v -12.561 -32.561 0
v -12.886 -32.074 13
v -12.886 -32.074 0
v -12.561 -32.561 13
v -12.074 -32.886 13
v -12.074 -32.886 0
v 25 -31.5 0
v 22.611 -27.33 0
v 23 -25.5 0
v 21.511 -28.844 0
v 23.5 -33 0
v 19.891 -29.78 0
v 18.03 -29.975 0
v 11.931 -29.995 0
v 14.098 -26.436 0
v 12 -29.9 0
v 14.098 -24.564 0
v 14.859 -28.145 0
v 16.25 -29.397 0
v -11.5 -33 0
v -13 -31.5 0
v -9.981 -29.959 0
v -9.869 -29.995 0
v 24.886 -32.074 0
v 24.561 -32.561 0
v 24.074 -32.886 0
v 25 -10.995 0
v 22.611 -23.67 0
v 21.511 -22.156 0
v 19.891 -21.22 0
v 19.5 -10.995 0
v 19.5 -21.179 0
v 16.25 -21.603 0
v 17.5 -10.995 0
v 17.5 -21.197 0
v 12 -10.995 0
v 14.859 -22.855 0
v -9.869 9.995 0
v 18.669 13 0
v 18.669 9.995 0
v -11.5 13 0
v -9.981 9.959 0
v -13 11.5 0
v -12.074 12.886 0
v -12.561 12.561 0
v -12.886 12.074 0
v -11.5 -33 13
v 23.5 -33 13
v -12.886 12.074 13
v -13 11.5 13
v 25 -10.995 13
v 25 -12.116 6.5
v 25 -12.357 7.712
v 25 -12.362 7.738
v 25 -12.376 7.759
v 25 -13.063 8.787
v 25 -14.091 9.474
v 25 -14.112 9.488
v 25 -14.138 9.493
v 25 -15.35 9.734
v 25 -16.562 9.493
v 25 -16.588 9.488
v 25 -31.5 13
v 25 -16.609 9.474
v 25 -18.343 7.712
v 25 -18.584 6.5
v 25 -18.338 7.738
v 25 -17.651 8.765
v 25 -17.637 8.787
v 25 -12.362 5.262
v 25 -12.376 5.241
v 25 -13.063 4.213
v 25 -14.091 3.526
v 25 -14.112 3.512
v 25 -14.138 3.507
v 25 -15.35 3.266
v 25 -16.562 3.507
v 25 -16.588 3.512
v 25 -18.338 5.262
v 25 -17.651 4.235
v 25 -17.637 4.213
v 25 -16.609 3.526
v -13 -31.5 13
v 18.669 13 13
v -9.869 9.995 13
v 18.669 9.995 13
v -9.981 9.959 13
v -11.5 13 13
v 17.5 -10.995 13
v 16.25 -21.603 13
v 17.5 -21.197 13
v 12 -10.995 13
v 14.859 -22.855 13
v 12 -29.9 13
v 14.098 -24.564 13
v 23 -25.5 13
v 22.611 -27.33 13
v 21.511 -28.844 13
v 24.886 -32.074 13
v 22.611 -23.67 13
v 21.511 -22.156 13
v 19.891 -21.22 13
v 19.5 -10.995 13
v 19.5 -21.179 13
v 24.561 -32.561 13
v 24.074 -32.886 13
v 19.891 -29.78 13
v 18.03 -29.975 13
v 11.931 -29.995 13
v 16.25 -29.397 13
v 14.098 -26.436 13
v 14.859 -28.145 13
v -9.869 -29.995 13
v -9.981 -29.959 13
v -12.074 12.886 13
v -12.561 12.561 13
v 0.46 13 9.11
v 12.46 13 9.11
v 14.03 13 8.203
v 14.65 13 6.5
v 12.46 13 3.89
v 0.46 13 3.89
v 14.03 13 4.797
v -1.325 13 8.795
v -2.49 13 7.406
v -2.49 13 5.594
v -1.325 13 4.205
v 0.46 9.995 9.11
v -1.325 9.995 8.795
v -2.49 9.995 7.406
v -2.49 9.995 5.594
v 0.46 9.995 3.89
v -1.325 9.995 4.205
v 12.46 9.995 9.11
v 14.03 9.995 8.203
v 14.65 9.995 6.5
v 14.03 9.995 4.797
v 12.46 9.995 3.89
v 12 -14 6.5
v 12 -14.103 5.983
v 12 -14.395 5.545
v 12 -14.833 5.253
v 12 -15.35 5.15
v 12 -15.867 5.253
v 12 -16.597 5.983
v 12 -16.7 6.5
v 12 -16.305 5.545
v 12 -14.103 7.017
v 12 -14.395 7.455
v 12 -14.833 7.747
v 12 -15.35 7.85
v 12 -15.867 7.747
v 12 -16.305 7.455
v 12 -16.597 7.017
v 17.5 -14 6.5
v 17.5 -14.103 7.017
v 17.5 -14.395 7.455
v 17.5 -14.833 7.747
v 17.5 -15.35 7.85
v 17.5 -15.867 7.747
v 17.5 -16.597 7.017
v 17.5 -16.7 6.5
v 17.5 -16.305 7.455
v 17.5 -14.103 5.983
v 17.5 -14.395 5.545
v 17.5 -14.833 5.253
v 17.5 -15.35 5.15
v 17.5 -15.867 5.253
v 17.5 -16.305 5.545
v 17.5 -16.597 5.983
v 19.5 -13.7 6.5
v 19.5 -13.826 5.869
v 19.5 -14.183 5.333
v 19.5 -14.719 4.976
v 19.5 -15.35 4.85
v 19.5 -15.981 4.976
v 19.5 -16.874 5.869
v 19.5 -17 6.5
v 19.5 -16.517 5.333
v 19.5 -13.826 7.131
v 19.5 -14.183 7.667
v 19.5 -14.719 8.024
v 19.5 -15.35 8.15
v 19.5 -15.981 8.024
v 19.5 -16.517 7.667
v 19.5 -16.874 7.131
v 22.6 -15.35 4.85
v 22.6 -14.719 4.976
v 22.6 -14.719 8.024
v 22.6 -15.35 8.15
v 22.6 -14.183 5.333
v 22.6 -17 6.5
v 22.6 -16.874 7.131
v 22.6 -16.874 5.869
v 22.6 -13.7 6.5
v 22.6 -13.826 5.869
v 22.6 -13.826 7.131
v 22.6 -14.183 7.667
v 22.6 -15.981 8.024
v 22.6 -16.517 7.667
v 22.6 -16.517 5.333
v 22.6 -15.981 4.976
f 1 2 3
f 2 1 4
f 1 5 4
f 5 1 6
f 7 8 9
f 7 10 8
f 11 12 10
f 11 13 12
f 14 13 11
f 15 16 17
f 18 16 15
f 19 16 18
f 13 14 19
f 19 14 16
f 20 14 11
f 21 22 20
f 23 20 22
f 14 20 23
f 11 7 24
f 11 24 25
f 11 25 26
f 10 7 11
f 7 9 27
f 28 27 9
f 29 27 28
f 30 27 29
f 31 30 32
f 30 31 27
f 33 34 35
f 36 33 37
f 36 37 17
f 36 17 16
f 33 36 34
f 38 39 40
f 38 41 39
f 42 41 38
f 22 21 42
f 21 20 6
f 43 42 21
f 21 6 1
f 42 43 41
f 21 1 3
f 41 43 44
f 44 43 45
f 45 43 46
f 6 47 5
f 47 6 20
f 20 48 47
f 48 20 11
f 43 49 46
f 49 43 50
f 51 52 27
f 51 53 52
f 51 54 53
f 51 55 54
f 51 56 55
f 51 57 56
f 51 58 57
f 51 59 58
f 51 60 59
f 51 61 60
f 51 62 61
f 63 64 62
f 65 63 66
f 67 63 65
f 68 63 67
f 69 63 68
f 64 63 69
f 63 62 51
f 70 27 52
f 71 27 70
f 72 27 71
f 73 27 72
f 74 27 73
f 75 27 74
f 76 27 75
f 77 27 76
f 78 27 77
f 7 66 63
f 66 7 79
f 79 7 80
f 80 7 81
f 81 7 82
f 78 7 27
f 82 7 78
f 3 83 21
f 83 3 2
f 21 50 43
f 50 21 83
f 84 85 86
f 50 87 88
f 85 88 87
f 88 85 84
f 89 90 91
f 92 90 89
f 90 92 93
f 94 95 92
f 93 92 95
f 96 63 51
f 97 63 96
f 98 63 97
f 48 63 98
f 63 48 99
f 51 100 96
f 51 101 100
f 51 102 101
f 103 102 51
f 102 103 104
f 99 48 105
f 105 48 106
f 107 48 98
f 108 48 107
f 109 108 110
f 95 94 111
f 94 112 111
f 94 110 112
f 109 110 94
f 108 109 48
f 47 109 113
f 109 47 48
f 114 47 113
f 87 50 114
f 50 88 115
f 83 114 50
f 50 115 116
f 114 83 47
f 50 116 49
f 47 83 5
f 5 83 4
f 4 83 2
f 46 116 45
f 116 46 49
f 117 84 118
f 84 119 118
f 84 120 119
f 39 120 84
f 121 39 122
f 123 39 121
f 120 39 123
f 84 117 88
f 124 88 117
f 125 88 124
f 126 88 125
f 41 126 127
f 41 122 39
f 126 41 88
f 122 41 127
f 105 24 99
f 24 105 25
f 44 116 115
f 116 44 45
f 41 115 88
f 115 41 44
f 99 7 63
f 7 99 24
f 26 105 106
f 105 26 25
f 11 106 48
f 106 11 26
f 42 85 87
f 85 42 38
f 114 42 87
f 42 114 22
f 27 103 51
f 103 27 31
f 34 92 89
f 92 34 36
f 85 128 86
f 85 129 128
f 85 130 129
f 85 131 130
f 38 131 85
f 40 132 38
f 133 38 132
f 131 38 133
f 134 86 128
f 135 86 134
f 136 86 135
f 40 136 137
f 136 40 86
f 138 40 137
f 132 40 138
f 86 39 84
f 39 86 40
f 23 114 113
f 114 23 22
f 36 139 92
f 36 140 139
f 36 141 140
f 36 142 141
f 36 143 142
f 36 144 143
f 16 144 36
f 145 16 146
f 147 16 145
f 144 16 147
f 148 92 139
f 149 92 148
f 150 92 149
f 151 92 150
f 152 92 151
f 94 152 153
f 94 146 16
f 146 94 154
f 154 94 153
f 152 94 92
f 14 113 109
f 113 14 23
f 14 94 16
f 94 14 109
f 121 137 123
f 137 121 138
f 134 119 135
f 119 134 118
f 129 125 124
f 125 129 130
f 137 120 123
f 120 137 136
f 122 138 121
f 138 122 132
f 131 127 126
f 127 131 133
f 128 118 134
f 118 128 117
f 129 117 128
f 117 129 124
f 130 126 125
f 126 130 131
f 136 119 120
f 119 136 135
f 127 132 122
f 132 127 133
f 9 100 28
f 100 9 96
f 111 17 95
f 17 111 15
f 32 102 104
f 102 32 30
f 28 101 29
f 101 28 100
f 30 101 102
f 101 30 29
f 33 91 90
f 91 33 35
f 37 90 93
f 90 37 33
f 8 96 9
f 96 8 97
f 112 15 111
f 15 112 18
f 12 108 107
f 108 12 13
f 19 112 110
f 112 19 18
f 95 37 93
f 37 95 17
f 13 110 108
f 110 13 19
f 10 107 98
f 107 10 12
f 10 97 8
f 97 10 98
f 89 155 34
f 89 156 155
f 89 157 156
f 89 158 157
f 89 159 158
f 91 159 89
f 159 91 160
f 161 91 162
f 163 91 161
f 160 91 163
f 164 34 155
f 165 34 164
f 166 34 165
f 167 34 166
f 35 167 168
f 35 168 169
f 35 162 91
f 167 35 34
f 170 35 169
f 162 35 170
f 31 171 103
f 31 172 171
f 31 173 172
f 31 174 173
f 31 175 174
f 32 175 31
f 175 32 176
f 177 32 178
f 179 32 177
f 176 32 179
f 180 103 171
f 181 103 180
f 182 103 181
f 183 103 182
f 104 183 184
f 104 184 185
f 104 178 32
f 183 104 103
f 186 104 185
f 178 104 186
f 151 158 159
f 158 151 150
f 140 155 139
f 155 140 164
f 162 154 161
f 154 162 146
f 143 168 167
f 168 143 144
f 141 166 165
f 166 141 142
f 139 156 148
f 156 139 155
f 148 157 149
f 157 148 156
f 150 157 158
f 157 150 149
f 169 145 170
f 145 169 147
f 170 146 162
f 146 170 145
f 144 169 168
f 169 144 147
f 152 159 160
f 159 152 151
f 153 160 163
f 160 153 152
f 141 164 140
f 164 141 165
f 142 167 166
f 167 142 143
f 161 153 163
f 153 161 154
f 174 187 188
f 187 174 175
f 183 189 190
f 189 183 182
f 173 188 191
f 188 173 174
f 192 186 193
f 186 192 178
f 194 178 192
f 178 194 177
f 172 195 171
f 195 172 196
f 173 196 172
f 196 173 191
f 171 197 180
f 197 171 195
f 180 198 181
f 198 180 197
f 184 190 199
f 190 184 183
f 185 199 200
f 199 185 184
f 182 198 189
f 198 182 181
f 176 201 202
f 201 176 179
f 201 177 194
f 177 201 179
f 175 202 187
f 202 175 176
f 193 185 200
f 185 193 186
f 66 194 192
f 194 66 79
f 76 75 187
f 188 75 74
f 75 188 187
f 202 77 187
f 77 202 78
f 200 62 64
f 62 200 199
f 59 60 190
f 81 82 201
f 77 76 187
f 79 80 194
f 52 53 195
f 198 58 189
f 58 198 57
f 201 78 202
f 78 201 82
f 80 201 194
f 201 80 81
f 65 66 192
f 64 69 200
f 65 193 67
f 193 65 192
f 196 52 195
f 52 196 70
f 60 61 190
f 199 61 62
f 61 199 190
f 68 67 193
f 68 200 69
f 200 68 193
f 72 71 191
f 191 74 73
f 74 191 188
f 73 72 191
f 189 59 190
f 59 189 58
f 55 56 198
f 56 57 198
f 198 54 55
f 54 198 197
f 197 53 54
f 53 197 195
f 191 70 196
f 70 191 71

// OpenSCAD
// file: parameter.scad
//-------Parameter GHarp----------------------------------------------------

strScale=650;
strDia=3;
strPosX=20;
strPosY=-20;
slotXY=20;
nStr=3;

nema17_height=40;
nema17_width=42;
nema17_shftDia=5;
nema17_shftLen=28;
nema17_holeDist=31;
Nema17_gearDia=23;

tuner_bDi=7.8;
tuner_bDo=22.2;
tuner_bZ=10;
tuner_rThick=5;
//tuner_tDia=strPosX*2; (big)
tuner_tDia=strPosX*2-10;
tuner_leverZ=10;
tuner_zPos=225;
tuner_strDia=strDia[0];
tuner_leverY=35;

//----------Kickup----------------------------------------------------

kickup_baseX=17;
kickup_baseY=13;
kickup_zAdjDia=3.3;
kickup_zAdjL=10;
kickup_zAdjDist=10.5;
kickup_zAdjOff=4;
//------------------------------------------------------------------------

slide_cpDst=1.5;
slide_rackPosX=(55-12.5);

m3Dia=3.3;
m3NutD=6.6;
m4Dia=4.3;
m4NutD=8.3;
m4NutZ=5;
m5Dia=5.3;
m5HeadD=9.6;

edgeR=3;

gearXPos=57;
gearYPos=0;
gearZPos=360;

rackScrD=20;
rack_X=13;
rack_Y=15.5;
rack_extOffX=0;

bearGearD=25;
mntGrD=20.5; //mount gear distance

mnt_pcbA_X=157;
mnt_pcbA_Y=101;

//---------End Parameter GHarp-----------------------------------------------


////-------Parameter Bass----------------------------------------------------

//strScale=650;
//strDia=4;
//strPosX=20;
//strPosY=-20;
//slotXY=20;
//
//nema17_height=40;
//nema17_width=42;
//nema17_shftDia=5;
//nema17_shftLen=28;
//nema17_holeDist=31;
//Nema17_gearDia=23;
//
//tuner_bDi=7.8;
//tuner_bDo=22.2;
//tuner_bZ=10;
//tuner_rThick=5;
////tuner_tDia=strPosX*2; (big)
//tuner_tDia=strPosX*2-10;
//tuner_leverZ=10;
//tuner_zPos=225;
//tuner_strDia=strDia[0];
//tuner_leverY=35;
//
////----------Kickup----------------------------------------------------
//
//
//kickup_baseX=22;
//kickup_baseY=15;
//kickup_zAdjDia=3.3;
//kickup_zAdjL=10;
//kickup_zAdjDist=13;
//kickup_zAdjOff=4;
//
//
//slide_cpDst=1.5;
//slide_rackPosX=(55-12.5);
//
//m3NutD=6.6;
//m4Dia=4.3;
//m4NutD=8.3;
//m5Dia=5.3;
//
//edgeR=3;
//
//gearXPos=57;
//gearYPos=0;
//gearZPos=360;
//
//rackScrD=20;
//rack_X=13;
//rack_Y=15.5;
//rack_extOffX=0;
//
//bearGearD=25;
//mntGrD=20.5; //mount gear distance
////
//////---------End Bass-----------------------------------------------
// file: libs/rcube.scad
module rcube(size,radius){
linear_extrude(height=size[2])
if(radius>0){
hull()
{
    // place 4 circles in the corners, with the given radius
    translate([(-size[0]/2)+(radius), (-size[1]/2)+(radius), 0])
    circle(r=radius);

    translate([(size[0]/2)-(radius), (-size[1]/2)+(radius), 0])
    circle(r=radius);

    translate([(-size[0]/2)+(radius), (size[1]/2)-(radius), 0])
    circle(r=radius);

    translate([(size[0]/2)-(radius), (size[1]/2)-(radius), 0])
    circle(r=radius);
}
}
if(radius==0){
translate([0,0,size[2]/2])cube(size,center=true);
}
}
// main file
include <libs/rcube.scad>;
include <parameter.scad>;

mnt();
//prop();

module mnt(){
adj=15;
wthick=3;
wthickX=3;
t=1;

edgeR=1.5;

x= slotXY+wthickX+adj;
y= slotXY*2+wthick*2;
z=13;

mDia=9;
mPosX=x/2-mDia/2+adj/2-wthickX/2-2;
mPosY=-y/2-slotXY/2+mDia/2+wthick;
mMntC=2;

thrdDia=2.7;
thrdPosY=-slotXY/2-thrdDia/2-wthick-1;

scrwSink=2.5;

difference(){
    translate([adj/2-wthickX/2,-y/2+wthick+slotXY/2,0])rcube([x,y,z],edgeR,$fn=16);
    translate([slotXY/2+adj/2,-t/2,-1])rcube([slotXY*2+adj,slotXY+t,z*2],0.1);
    translate([slotXY+adj-2+m5Dia/2+wthick,slotXY/2,-1])rcube([slotXY*2,slotXY,z*2],0.1);
    translate([((slotXY/2+mPosX-mDia/2-2)-slotXY)/2,-slotXY/2,-1])rcube([slotXY/2+mPosX-mDia/2-2,slotXY*2,z*2],0.1);
    hull(){
        translate([adj-wthick,0,z/2])rotate([-90,0,0])cylinder(d=m5Dia,h=slotXY);
        translate([0,0,z/2])rotate([-90,0,0])cylinder(d=m5Dia,h=slotXY);
    }
    translate([mPosX,mPosY,0])cylinder(d=mDia,h=z*3,center=true);
    translate([mPosX,-slotXY+mDia/2,0])cube([mMntC,slotXY,z*3],center=true);
    translate([mPosX,thrdPosY,z/2])rotate([0,90,0])cylinder(d=thrdDia,h=x/2,$fn=16,center=true);
    
    translate([mPosX,thrdPosY,z/2])rotate([0,90,0])cylinder(d=m3Dia,h=x,$fn=16);
    translate([adj/2-wthickX/2+x/2-scrwSink+0.1,thrdPosY,z/2])rotate([0,90,0])cylinder(d1=m3Dia,d2=m3NutD,h=scrwSink,$fn=16);
    

}

}

module prop(){
$fn=16;
dO=4;
dI=1.2;
h=5;
t=1.5;
b=9;
cB=1.5;
cH=3.5;
wthick=1;
    
difference(){
union(){
cylinder(d=dO,h=h);
translate([0,0,h/2])cube([b,t,h],center=true);
}
translate([0,0,-1])cylinder(d=dI,h=h);
translate([b/2-cB/2-wthick,0,h/2])cube([cB,t*2,cH],center=true);
translate([-(b/2-cB/2-wthick),0,h/2])cube([cB,t*2,cH],center=true);
}

}
